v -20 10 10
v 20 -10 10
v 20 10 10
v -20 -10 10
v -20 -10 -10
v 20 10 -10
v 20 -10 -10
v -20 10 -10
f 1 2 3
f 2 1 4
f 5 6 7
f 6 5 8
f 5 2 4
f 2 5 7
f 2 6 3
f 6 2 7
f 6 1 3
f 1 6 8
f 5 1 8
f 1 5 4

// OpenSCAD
// Define the dimensions of the rectangular block
block_width = 20;  // Width of the block
block_height = 20; // Height of the block
block_length = 40; // Length of the block

// Function to create a single rectangular block
module rectangular_block() {
    cube([block_length, block_width, block_height], center = true);
}

// Create a single seamless rectangular block
rectangular_block();
